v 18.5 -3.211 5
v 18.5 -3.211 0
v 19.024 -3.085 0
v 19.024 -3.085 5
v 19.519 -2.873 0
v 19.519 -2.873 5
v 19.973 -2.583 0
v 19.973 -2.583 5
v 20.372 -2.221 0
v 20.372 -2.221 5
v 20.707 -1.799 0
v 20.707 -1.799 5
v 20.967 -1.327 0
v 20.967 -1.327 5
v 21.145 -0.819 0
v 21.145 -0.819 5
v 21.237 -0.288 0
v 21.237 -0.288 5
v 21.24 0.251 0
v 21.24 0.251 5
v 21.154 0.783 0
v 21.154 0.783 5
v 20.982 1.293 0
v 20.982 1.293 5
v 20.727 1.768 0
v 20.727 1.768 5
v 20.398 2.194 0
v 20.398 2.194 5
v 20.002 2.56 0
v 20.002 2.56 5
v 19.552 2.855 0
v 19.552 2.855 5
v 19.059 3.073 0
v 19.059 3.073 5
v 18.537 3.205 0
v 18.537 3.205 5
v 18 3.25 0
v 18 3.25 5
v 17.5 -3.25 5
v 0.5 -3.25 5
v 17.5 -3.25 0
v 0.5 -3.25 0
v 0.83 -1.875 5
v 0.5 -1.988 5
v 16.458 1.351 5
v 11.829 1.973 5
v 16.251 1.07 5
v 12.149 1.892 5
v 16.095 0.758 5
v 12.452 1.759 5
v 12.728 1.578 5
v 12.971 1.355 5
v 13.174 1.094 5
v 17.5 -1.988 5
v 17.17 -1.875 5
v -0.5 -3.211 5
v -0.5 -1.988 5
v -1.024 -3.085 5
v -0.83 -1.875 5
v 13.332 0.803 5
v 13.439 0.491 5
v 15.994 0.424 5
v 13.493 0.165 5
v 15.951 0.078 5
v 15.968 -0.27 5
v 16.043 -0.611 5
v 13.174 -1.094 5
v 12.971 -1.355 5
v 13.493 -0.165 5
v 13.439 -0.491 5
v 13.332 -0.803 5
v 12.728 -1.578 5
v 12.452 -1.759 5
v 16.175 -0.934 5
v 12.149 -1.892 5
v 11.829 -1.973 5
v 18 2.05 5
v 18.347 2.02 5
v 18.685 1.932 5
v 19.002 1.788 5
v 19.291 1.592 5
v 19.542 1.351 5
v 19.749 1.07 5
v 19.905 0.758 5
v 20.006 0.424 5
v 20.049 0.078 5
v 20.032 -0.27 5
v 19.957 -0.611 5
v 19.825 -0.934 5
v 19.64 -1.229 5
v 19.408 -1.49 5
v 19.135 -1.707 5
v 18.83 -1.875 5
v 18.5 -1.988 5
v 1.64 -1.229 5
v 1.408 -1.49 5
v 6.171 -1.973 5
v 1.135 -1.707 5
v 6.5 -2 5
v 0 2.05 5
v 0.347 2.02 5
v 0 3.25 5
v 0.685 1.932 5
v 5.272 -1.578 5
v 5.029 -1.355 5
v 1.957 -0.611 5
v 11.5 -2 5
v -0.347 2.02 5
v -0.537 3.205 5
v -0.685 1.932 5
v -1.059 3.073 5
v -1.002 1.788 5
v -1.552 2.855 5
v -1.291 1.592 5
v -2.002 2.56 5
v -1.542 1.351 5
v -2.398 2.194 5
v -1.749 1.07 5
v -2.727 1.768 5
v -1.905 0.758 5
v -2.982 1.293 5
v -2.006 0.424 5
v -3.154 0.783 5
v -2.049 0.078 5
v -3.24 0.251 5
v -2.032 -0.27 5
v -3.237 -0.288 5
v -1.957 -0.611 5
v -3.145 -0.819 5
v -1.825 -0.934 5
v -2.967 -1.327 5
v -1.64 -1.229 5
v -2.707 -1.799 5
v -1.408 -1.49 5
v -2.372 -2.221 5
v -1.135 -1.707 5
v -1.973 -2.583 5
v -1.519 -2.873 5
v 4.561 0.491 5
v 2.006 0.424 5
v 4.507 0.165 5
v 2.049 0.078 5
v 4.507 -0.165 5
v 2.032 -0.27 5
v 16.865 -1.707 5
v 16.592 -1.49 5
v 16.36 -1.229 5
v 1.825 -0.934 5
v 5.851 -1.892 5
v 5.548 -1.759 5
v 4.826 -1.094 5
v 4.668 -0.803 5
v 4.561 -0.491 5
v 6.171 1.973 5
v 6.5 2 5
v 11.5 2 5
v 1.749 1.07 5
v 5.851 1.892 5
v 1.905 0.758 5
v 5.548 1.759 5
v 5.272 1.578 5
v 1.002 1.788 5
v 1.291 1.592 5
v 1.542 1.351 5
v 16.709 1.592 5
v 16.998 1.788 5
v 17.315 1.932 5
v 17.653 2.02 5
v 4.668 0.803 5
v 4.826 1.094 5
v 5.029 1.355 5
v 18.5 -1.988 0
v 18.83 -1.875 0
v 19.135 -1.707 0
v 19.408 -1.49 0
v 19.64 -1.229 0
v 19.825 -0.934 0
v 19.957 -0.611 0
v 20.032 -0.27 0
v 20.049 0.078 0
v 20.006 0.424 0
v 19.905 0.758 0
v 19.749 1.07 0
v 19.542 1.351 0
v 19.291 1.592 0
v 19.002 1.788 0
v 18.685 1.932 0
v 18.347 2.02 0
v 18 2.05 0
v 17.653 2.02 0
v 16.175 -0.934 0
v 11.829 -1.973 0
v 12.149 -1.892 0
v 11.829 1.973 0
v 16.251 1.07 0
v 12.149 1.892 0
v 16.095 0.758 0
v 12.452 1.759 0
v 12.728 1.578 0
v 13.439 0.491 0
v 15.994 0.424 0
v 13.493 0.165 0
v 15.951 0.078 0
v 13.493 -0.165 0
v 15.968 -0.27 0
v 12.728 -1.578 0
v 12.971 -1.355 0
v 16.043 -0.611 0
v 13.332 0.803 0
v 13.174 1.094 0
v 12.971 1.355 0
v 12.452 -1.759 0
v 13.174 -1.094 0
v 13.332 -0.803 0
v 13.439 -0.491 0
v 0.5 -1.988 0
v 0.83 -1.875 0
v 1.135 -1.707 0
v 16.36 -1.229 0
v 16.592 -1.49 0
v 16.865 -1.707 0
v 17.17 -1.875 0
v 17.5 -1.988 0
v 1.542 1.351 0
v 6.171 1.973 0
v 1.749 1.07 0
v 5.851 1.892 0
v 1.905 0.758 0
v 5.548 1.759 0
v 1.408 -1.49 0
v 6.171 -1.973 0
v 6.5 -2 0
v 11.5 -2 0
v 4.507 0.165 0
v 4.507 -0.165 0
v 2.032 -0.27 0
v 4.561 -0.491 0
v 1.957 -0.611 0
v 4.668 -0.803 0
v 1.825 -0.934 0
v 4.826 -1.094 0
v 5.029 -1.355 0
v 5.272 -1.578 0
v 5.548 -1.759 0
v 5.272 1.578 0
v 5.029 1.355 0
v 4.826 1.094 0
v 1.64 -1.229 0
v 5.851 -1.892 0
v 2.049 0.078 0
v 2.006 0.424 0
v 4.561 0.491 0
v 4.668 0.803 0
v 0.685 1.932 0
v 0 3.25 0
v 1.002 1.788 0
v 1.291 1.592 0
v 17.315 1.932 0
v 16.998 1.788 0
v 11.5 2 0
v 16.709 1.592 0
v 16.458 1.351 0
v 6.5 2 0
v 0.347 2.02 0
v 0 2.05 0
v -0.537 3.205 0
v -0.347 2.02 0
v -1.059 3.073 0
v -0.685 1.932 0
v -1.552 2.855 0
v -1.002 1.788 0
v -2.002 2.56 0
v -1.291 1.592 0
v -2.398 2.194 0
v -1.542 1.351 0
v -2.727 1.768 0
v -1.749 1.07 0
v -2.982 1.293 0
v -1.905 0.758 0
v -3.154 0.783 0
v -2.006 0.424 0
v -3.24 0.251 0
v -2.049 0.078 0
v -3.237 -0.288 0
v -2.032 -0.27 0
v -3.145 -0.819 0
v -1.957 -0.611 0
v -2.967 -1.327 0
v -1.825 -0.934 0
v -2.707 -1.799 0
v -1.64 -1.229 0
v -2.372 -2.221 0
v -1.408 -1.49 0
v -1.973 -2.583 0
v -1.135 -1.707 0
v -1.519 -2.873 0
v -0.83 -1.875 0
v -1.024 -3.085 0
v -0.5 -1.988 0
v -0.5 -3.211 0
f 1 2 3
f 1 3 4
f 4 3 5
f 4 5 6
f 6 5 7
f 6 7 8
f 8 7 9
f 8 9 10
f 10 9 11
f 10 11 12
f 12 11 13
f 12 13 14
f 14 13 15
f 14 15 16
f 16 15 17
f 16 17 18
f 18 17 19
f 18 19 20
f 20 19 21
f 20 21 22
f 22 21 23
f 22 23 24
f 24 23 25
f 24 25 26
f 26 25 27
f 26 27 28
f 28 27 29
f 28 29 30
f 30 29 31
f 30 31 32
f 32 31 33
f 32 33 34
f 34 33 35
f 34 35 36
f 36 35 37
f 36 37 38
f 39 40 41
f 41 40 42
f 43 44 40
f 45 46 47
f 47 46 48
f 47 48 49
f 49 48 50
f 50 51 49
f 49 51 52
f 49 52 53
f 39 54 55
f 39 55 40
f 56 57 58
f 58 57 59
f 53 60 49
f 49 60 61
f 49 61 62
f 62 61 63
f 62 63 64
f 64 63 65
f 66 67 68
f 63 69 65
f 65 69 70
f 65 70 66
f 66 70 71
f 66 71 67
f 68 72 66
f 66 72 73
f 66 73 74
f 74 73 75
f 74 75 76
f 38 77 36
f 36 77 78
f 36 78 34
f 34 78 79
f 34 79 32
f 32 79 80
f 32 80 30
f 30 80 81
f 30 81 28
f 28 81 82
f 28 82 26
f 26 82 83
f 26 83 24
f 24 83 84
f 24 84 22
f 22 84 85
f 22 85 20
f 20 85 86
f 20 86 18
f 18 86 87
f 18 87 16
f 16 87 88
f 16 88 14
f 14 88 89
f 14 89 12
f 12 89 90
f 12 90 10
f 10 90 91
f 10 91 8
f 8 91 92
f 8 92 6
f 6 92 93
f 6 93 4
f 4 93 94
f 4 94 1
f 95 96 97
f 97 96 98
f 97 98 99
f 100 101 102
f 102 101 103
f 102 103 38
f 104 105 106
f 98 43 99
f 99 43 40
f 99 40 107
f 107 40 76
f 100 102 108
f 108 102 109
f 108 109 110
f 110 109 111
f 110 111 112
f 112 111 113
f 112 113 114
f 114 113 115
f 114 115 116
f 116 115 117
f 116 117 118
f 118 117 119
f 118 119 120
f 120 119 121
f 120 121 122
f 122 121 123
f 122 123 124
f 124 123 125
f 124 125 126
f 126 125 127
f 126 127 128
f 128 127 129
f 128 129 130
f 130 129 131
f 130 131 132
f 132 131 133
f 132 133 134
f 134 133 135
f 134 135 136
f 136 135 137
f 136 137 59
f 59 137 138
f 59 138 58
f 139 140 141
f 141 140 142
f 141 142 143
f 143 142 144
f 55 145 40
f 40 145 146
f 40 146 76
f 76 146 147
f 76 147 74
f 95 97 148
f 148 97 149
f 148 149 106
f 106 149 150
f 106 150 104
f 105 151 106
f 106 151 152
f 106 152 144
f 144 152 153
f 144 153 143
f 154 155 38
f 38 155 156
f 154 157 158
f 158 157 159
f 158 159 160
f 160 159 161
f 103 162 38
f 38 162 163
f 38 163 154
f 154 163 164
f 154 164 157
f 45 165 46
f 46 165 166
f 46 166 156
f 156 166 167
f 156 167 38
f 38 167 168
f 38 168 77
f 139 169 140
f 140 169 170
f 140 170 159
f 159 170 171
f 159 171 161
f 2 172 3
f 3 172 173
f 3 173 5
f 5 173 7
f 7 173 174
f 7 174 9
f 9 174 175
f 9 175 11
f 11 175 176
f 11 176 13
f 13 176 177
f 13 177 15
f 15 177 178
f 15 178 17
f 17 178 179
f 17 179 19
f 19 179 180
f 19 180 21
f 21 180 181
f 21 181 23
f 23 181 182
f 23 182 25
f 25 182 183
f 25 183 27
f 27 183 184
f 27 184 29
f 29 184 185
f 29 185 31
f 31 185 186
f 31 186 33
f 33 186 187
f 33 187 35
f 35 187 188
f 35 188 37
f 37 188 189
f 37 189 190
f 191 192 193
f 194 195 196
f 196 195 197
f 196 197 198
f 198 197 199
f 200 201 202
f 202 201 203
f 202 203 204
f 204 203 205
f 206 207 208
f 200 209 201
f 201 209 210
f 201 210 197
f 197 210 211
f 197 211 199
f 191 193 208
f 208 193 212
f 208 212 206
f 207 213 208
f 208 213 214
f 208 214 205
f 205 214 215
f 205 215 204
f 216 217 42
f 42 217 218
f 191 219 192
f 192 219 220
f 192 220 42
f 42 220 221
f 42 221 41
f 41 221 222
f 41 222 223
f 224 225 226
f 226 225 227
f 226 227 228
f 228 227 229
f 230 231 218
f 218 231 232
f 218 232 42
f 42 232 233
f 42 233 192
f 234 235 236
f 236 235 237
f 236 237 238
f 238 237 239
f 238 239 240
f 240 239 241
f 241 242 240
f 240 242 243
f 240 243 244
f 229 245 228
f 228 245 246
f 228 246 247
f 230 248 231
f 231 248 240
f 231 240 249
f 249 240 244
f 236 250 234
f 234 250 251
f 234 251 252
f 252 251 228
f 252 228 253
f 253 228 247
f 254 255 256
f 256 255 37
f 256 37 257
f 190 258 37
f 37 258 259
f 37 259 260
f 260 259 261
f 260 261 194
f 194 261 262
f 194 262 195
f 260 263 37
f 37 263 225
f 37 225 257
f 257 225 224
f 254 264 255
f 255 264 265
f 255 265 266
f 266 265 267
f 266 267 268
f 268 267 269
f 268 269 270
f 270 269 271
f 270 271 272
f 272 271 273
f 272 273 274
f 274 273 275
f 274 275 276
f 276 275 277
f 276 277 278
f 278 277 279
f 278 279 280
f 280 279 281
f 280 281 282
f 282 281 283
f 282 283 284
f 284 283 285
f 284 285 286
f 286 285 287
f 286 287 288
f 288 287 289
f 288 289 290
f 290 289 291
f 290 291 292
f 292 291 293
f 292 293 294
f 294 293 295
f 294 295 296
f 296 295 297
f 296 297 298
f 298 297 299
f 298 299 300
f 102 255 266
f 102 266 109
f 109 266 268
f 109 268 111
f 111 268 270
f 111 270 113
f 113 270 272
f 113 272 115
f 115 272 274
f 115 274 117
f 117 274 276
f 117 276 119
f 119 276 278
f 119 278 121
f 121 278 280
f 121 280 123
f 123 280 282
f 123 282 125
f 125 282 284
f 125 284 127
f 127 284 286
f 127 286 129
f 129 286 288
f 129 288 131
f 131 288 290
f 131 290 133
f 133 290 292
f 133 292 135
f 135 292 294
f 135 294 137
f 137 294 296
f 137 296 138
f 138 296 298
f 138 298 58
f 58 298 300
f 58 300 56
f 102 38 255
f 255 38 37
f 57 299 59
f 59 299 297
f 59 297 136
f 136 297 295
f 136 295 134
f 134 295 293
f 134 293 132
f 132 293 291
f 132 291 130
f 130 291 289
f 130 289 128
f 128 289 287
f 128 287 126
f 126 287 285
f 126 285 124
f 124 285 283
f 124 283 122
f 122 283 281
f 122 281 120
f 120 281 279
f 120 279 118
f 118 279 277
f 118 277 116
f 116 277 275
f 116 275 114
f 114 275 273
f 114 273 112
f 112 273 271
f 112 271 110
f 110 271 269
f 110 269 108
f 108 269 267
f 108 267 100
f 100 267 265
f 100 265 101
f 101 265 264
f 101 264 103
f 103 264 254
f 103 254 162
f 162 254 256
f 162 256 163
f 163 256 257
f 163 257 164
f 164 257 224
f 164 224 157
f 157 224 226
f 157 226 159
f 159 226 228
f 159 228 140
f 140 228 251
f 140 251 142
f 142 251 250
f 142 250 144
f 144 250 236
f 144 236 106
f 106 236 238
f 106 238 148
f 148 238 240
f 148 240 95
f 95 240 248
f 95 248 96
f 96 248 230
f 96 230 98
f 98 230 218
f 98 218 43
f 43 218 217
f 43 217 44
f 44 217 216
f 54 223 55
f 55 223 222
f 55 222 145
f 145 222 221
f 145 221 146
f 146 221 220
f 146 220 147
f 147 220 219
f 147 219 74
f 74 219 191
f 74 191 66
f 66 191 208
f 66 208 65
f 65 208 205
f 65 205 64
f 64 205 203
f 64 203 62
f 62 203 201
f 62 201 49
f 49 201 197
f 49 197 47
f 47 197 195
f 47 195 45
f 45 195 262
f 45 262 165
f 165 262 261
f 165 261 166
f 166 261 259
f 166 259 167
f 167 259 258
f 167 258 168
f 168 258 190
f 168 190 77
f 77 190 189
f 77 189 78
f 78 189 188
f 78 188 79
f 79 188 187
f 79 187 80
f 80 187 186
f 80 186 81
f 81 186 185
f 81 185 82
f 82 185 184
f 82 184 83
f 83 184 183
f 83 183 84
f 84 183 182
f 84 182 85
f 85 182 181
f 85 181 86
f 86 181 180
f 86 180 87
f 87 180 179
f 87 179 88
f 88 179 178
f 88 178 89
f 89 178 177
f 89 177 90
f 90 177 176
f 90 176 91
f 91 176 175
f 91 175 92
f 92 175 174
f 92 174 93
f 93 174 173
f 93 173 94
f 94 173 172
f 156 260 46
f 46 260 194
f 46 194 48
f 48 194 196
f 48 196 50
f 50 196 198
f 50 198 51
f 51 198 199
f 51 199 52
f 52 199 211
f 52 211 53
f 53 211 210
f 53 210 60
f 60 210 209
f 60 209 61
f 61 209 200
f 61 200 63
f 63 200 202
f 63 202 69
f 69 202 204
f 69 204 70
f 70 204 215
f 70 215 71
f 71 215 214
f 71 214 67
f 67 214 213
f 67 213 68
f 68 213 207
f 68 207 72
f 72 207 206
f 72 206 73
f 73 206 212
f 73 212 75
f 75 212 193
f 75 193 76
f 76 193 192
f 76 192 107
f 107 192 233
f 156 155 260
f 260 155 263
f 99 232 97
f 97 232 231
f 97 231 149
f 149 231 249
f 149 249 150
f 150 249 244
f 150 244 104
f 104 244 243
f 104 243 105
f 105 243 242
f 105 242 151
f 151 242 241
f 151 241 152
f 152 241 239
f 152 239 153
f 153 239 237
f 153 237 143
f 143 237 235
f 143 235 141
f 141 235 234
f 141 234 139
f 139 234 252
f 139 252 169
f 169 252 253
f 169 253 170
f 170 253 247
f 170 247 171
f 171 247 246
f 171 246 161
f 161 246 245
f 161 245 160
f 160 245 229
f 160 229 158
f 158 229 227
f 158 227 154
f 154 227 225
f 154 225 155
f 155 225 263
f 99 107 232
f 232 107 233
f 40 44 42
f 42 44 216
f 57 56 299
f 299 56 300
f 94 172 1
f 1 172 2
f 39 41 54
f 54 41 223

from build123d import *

# Parameters (mm, degrees)
SKETCH1_R               = 2.05
BOSS_EXTRUDE1_DEPTH     = 5
SKETCH2_W               = 1
SKETCH2_H               = 5
CUT_EXTRUDE_THIN1_DEPTH = 2


with BuildPart() as part:
    # Sketch1 → Boss-Extrude1 (new body)
    with BuildSketch(Plane.XY):
        with BuildLine():
            Line((0, 3.25), (18, 3.25))
            ThreePointArc((18, 3.25), (21.25, 0), (18, -3.25))
            Line((18, -3.25), (0, -3.25))
            ThreePointArc((0, -3.25), (-3.25, 0), (0, 3.25))
        make_face()
        Circle(SKETCH1_R, mode=Mode.SUBTRACT)
        with Locations((18, 0)):
            Circle(SKETCH1_R, mode=Mode.SUBTRACT)
        with BuildLine():
            Line((11.5, -2), (6.5, -2))
            ThreePointArc((6.5, -2), (4.5, 0), (6.5, 2))
            Line((6.5, 2), (11.5, 2))
            ThreePointArc((11.5, 2), (13.5, 0), (11.5, -2))
        make_face(mode=Mode.SUBTRACT)
    extrude(amount=BOSS_EXTRUDE1_DEPTH)

    # Sketch2 → Cut-Extrude-Thin1 (cut)
    with BuildSketch(Plane(origin=(0, -3.25, 0), x_dir=(-1, 0, 0), z_dir=(0, -1, 0))):
        with Locations((0, -2.5)):
            Rectangle(SKETCH2_W, SKETCH2_H)
        with Locations((-18, -2.5)):
            Rectangle(SKETCH2_W, SKETCH2_H)
    extrude(amount=-CUT_EXTRUDE_THIN1_DEPTH, mode=Mode.SUBTRACT)


solid = part.part
